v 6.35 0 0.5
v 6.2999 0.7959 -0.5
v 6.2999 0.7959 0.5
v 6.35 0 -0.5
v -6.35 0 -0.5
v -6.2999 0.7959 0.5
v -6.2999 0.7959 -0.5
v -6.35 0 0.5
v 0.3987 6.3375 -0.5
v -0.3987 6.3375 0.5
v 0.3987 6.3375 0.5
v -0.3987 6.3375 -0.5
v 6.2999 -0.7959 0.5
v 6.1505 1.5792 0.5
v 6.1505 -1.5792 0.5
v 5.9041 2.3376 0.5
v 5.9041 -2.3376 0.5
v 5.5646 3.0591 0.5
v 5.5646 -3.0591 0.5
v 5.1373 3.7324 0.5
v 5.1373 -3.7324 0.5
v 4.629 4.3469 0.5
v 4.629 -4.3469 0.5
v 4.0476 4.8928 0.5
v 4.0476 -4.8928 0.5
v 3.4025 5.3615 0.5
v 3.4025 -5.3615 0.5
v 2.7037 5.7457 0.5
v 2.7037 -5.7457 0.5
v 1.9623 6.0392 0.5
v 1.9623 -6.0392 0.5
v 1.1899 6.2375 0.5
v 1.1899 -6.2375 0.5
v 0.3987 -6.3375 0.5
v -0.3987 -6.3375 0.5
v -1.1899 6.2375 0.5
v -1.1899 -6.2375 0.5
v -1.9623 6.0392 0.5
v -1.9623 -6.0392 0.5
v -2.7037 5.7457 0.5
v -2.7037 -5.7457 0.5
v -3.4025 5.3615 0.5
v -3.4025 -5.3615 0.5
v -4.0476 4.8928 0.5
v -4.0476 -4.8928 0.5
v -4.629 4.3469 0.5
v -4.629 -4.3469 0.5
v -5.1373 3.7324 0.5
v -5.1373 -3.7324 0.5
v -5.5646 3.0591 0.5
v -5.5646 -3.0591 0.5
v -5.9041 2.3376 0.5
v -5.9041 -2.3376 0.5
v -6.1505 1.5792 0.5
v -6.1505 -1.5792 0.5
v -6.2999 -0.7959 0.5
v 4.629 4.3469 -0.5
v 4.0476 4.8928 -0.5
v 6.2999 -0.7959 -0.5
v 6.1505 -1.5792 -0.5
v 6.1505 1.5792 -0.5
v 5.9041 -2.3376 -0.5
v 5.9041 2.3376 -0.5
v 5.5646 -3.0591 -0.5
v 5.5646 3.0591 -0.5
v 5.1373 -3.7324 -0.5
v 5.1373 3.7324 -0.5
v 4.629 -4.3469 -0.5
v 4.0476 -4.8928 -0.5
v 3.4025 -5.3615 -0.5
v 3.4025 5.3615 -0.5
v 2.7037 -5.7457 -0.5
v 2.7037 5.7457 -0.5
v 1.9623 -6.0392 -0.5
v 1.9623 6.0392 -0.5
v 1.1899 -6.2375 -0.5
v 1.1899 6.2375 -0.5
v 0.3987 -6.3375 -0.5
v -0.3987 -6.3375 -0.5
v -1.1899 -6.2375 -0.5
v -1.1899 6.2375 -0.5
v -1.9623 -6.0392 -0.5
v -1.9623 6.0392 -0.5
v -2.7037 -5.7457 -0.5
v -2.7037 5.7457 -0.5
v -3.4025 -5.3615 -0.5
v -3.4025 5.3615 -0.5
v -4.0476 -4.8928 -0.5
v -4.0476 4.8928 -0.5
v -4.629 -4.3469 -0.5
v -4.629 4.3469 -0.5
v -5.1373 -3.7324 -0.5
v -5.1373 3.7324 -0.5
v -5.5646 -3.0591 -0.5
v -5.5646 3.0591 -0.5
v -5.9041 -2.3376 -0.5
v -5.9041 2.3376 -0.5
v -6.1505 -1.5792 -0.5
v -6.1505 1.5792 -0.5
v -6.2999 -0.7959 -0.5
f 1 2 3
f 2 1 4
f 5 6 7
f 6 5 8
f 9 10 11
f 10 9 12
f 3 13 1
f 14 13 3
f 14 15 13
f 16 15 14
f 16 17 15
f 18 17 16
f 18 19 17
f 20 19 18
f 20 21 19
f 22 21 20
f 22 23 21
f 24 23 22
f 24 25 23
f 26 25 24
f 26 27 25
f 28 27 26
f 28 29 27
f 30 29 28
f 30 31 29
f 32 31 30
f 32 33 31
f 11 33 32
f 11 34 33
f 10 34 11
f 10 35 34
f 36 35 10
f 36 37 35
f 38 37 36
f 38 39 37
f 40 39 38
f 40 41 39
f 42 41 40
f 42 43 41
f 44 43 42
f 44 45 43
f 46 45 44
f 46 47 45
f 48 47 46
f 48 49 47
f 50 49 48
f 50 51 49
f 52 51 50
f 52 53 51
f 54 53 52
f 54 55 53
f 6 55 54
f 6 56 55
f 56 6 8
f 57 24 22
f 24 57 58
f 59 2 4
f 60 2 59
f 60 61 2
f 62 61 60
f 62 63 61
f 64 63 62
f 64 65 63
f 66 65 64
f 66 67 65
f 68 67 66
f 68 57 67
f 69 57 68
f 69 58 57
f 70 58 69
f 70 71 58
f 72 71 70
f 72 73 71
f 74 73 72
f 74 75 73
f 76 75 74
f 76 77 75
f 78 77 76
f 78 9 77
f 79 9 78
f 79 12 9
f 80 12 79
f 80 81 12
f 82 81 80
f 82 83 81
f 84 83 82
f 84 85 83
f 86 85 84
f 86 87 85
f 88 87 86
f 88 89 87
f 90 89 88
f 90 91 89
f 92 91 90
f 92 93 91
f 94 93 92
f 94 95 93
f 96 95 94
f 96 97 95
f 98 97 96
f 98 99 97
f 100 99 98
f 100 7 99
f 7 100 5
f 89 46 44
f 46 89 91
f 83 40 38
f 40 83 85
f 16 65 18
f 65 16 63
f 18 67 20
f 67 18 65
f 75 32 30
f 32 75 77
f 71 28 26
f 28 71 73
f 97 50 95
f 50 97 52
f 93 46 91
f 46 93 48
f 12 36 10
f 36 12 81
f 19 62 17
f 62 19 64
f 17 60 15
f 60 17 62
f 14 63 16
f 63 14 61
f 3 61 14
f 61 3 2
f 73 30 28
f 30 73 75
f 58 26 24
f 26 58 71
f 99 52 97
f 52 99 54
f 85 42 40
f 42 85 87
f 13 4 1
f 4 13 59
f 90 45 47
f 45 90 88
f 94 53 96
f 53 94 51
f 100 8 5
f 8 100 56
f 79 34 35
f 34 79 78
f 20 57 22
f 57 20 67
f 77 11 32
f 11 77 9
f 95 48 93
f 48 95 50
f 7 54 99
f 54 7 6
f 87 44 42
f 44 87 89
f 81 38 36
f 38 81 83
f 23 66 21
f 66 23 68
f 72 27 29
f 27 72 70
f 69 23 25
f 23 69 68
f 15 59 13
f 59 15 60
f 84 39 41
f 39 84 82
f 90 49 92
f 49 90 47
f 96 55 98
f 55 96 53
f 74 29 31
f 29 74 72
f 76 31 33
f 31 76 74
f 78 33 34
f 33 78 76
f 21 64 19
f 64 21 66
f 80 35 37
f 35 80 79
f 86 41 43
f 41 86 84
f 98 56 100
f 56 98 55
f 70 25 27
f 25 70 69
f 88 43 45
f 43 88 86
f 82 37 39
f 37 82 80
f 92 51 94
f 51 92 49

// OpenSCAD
$fn = 50;


difference() {
	union() {
		translate(v = [0, 0, -0.5000000000]) {
			cylinder(h = 1, r = 6.3500000000);
		}
	}
	union() {
		translate(v = [0, 0, -100.0000000000]) {
			cylinder(h = 200, r = 0);
		}
	}
}
